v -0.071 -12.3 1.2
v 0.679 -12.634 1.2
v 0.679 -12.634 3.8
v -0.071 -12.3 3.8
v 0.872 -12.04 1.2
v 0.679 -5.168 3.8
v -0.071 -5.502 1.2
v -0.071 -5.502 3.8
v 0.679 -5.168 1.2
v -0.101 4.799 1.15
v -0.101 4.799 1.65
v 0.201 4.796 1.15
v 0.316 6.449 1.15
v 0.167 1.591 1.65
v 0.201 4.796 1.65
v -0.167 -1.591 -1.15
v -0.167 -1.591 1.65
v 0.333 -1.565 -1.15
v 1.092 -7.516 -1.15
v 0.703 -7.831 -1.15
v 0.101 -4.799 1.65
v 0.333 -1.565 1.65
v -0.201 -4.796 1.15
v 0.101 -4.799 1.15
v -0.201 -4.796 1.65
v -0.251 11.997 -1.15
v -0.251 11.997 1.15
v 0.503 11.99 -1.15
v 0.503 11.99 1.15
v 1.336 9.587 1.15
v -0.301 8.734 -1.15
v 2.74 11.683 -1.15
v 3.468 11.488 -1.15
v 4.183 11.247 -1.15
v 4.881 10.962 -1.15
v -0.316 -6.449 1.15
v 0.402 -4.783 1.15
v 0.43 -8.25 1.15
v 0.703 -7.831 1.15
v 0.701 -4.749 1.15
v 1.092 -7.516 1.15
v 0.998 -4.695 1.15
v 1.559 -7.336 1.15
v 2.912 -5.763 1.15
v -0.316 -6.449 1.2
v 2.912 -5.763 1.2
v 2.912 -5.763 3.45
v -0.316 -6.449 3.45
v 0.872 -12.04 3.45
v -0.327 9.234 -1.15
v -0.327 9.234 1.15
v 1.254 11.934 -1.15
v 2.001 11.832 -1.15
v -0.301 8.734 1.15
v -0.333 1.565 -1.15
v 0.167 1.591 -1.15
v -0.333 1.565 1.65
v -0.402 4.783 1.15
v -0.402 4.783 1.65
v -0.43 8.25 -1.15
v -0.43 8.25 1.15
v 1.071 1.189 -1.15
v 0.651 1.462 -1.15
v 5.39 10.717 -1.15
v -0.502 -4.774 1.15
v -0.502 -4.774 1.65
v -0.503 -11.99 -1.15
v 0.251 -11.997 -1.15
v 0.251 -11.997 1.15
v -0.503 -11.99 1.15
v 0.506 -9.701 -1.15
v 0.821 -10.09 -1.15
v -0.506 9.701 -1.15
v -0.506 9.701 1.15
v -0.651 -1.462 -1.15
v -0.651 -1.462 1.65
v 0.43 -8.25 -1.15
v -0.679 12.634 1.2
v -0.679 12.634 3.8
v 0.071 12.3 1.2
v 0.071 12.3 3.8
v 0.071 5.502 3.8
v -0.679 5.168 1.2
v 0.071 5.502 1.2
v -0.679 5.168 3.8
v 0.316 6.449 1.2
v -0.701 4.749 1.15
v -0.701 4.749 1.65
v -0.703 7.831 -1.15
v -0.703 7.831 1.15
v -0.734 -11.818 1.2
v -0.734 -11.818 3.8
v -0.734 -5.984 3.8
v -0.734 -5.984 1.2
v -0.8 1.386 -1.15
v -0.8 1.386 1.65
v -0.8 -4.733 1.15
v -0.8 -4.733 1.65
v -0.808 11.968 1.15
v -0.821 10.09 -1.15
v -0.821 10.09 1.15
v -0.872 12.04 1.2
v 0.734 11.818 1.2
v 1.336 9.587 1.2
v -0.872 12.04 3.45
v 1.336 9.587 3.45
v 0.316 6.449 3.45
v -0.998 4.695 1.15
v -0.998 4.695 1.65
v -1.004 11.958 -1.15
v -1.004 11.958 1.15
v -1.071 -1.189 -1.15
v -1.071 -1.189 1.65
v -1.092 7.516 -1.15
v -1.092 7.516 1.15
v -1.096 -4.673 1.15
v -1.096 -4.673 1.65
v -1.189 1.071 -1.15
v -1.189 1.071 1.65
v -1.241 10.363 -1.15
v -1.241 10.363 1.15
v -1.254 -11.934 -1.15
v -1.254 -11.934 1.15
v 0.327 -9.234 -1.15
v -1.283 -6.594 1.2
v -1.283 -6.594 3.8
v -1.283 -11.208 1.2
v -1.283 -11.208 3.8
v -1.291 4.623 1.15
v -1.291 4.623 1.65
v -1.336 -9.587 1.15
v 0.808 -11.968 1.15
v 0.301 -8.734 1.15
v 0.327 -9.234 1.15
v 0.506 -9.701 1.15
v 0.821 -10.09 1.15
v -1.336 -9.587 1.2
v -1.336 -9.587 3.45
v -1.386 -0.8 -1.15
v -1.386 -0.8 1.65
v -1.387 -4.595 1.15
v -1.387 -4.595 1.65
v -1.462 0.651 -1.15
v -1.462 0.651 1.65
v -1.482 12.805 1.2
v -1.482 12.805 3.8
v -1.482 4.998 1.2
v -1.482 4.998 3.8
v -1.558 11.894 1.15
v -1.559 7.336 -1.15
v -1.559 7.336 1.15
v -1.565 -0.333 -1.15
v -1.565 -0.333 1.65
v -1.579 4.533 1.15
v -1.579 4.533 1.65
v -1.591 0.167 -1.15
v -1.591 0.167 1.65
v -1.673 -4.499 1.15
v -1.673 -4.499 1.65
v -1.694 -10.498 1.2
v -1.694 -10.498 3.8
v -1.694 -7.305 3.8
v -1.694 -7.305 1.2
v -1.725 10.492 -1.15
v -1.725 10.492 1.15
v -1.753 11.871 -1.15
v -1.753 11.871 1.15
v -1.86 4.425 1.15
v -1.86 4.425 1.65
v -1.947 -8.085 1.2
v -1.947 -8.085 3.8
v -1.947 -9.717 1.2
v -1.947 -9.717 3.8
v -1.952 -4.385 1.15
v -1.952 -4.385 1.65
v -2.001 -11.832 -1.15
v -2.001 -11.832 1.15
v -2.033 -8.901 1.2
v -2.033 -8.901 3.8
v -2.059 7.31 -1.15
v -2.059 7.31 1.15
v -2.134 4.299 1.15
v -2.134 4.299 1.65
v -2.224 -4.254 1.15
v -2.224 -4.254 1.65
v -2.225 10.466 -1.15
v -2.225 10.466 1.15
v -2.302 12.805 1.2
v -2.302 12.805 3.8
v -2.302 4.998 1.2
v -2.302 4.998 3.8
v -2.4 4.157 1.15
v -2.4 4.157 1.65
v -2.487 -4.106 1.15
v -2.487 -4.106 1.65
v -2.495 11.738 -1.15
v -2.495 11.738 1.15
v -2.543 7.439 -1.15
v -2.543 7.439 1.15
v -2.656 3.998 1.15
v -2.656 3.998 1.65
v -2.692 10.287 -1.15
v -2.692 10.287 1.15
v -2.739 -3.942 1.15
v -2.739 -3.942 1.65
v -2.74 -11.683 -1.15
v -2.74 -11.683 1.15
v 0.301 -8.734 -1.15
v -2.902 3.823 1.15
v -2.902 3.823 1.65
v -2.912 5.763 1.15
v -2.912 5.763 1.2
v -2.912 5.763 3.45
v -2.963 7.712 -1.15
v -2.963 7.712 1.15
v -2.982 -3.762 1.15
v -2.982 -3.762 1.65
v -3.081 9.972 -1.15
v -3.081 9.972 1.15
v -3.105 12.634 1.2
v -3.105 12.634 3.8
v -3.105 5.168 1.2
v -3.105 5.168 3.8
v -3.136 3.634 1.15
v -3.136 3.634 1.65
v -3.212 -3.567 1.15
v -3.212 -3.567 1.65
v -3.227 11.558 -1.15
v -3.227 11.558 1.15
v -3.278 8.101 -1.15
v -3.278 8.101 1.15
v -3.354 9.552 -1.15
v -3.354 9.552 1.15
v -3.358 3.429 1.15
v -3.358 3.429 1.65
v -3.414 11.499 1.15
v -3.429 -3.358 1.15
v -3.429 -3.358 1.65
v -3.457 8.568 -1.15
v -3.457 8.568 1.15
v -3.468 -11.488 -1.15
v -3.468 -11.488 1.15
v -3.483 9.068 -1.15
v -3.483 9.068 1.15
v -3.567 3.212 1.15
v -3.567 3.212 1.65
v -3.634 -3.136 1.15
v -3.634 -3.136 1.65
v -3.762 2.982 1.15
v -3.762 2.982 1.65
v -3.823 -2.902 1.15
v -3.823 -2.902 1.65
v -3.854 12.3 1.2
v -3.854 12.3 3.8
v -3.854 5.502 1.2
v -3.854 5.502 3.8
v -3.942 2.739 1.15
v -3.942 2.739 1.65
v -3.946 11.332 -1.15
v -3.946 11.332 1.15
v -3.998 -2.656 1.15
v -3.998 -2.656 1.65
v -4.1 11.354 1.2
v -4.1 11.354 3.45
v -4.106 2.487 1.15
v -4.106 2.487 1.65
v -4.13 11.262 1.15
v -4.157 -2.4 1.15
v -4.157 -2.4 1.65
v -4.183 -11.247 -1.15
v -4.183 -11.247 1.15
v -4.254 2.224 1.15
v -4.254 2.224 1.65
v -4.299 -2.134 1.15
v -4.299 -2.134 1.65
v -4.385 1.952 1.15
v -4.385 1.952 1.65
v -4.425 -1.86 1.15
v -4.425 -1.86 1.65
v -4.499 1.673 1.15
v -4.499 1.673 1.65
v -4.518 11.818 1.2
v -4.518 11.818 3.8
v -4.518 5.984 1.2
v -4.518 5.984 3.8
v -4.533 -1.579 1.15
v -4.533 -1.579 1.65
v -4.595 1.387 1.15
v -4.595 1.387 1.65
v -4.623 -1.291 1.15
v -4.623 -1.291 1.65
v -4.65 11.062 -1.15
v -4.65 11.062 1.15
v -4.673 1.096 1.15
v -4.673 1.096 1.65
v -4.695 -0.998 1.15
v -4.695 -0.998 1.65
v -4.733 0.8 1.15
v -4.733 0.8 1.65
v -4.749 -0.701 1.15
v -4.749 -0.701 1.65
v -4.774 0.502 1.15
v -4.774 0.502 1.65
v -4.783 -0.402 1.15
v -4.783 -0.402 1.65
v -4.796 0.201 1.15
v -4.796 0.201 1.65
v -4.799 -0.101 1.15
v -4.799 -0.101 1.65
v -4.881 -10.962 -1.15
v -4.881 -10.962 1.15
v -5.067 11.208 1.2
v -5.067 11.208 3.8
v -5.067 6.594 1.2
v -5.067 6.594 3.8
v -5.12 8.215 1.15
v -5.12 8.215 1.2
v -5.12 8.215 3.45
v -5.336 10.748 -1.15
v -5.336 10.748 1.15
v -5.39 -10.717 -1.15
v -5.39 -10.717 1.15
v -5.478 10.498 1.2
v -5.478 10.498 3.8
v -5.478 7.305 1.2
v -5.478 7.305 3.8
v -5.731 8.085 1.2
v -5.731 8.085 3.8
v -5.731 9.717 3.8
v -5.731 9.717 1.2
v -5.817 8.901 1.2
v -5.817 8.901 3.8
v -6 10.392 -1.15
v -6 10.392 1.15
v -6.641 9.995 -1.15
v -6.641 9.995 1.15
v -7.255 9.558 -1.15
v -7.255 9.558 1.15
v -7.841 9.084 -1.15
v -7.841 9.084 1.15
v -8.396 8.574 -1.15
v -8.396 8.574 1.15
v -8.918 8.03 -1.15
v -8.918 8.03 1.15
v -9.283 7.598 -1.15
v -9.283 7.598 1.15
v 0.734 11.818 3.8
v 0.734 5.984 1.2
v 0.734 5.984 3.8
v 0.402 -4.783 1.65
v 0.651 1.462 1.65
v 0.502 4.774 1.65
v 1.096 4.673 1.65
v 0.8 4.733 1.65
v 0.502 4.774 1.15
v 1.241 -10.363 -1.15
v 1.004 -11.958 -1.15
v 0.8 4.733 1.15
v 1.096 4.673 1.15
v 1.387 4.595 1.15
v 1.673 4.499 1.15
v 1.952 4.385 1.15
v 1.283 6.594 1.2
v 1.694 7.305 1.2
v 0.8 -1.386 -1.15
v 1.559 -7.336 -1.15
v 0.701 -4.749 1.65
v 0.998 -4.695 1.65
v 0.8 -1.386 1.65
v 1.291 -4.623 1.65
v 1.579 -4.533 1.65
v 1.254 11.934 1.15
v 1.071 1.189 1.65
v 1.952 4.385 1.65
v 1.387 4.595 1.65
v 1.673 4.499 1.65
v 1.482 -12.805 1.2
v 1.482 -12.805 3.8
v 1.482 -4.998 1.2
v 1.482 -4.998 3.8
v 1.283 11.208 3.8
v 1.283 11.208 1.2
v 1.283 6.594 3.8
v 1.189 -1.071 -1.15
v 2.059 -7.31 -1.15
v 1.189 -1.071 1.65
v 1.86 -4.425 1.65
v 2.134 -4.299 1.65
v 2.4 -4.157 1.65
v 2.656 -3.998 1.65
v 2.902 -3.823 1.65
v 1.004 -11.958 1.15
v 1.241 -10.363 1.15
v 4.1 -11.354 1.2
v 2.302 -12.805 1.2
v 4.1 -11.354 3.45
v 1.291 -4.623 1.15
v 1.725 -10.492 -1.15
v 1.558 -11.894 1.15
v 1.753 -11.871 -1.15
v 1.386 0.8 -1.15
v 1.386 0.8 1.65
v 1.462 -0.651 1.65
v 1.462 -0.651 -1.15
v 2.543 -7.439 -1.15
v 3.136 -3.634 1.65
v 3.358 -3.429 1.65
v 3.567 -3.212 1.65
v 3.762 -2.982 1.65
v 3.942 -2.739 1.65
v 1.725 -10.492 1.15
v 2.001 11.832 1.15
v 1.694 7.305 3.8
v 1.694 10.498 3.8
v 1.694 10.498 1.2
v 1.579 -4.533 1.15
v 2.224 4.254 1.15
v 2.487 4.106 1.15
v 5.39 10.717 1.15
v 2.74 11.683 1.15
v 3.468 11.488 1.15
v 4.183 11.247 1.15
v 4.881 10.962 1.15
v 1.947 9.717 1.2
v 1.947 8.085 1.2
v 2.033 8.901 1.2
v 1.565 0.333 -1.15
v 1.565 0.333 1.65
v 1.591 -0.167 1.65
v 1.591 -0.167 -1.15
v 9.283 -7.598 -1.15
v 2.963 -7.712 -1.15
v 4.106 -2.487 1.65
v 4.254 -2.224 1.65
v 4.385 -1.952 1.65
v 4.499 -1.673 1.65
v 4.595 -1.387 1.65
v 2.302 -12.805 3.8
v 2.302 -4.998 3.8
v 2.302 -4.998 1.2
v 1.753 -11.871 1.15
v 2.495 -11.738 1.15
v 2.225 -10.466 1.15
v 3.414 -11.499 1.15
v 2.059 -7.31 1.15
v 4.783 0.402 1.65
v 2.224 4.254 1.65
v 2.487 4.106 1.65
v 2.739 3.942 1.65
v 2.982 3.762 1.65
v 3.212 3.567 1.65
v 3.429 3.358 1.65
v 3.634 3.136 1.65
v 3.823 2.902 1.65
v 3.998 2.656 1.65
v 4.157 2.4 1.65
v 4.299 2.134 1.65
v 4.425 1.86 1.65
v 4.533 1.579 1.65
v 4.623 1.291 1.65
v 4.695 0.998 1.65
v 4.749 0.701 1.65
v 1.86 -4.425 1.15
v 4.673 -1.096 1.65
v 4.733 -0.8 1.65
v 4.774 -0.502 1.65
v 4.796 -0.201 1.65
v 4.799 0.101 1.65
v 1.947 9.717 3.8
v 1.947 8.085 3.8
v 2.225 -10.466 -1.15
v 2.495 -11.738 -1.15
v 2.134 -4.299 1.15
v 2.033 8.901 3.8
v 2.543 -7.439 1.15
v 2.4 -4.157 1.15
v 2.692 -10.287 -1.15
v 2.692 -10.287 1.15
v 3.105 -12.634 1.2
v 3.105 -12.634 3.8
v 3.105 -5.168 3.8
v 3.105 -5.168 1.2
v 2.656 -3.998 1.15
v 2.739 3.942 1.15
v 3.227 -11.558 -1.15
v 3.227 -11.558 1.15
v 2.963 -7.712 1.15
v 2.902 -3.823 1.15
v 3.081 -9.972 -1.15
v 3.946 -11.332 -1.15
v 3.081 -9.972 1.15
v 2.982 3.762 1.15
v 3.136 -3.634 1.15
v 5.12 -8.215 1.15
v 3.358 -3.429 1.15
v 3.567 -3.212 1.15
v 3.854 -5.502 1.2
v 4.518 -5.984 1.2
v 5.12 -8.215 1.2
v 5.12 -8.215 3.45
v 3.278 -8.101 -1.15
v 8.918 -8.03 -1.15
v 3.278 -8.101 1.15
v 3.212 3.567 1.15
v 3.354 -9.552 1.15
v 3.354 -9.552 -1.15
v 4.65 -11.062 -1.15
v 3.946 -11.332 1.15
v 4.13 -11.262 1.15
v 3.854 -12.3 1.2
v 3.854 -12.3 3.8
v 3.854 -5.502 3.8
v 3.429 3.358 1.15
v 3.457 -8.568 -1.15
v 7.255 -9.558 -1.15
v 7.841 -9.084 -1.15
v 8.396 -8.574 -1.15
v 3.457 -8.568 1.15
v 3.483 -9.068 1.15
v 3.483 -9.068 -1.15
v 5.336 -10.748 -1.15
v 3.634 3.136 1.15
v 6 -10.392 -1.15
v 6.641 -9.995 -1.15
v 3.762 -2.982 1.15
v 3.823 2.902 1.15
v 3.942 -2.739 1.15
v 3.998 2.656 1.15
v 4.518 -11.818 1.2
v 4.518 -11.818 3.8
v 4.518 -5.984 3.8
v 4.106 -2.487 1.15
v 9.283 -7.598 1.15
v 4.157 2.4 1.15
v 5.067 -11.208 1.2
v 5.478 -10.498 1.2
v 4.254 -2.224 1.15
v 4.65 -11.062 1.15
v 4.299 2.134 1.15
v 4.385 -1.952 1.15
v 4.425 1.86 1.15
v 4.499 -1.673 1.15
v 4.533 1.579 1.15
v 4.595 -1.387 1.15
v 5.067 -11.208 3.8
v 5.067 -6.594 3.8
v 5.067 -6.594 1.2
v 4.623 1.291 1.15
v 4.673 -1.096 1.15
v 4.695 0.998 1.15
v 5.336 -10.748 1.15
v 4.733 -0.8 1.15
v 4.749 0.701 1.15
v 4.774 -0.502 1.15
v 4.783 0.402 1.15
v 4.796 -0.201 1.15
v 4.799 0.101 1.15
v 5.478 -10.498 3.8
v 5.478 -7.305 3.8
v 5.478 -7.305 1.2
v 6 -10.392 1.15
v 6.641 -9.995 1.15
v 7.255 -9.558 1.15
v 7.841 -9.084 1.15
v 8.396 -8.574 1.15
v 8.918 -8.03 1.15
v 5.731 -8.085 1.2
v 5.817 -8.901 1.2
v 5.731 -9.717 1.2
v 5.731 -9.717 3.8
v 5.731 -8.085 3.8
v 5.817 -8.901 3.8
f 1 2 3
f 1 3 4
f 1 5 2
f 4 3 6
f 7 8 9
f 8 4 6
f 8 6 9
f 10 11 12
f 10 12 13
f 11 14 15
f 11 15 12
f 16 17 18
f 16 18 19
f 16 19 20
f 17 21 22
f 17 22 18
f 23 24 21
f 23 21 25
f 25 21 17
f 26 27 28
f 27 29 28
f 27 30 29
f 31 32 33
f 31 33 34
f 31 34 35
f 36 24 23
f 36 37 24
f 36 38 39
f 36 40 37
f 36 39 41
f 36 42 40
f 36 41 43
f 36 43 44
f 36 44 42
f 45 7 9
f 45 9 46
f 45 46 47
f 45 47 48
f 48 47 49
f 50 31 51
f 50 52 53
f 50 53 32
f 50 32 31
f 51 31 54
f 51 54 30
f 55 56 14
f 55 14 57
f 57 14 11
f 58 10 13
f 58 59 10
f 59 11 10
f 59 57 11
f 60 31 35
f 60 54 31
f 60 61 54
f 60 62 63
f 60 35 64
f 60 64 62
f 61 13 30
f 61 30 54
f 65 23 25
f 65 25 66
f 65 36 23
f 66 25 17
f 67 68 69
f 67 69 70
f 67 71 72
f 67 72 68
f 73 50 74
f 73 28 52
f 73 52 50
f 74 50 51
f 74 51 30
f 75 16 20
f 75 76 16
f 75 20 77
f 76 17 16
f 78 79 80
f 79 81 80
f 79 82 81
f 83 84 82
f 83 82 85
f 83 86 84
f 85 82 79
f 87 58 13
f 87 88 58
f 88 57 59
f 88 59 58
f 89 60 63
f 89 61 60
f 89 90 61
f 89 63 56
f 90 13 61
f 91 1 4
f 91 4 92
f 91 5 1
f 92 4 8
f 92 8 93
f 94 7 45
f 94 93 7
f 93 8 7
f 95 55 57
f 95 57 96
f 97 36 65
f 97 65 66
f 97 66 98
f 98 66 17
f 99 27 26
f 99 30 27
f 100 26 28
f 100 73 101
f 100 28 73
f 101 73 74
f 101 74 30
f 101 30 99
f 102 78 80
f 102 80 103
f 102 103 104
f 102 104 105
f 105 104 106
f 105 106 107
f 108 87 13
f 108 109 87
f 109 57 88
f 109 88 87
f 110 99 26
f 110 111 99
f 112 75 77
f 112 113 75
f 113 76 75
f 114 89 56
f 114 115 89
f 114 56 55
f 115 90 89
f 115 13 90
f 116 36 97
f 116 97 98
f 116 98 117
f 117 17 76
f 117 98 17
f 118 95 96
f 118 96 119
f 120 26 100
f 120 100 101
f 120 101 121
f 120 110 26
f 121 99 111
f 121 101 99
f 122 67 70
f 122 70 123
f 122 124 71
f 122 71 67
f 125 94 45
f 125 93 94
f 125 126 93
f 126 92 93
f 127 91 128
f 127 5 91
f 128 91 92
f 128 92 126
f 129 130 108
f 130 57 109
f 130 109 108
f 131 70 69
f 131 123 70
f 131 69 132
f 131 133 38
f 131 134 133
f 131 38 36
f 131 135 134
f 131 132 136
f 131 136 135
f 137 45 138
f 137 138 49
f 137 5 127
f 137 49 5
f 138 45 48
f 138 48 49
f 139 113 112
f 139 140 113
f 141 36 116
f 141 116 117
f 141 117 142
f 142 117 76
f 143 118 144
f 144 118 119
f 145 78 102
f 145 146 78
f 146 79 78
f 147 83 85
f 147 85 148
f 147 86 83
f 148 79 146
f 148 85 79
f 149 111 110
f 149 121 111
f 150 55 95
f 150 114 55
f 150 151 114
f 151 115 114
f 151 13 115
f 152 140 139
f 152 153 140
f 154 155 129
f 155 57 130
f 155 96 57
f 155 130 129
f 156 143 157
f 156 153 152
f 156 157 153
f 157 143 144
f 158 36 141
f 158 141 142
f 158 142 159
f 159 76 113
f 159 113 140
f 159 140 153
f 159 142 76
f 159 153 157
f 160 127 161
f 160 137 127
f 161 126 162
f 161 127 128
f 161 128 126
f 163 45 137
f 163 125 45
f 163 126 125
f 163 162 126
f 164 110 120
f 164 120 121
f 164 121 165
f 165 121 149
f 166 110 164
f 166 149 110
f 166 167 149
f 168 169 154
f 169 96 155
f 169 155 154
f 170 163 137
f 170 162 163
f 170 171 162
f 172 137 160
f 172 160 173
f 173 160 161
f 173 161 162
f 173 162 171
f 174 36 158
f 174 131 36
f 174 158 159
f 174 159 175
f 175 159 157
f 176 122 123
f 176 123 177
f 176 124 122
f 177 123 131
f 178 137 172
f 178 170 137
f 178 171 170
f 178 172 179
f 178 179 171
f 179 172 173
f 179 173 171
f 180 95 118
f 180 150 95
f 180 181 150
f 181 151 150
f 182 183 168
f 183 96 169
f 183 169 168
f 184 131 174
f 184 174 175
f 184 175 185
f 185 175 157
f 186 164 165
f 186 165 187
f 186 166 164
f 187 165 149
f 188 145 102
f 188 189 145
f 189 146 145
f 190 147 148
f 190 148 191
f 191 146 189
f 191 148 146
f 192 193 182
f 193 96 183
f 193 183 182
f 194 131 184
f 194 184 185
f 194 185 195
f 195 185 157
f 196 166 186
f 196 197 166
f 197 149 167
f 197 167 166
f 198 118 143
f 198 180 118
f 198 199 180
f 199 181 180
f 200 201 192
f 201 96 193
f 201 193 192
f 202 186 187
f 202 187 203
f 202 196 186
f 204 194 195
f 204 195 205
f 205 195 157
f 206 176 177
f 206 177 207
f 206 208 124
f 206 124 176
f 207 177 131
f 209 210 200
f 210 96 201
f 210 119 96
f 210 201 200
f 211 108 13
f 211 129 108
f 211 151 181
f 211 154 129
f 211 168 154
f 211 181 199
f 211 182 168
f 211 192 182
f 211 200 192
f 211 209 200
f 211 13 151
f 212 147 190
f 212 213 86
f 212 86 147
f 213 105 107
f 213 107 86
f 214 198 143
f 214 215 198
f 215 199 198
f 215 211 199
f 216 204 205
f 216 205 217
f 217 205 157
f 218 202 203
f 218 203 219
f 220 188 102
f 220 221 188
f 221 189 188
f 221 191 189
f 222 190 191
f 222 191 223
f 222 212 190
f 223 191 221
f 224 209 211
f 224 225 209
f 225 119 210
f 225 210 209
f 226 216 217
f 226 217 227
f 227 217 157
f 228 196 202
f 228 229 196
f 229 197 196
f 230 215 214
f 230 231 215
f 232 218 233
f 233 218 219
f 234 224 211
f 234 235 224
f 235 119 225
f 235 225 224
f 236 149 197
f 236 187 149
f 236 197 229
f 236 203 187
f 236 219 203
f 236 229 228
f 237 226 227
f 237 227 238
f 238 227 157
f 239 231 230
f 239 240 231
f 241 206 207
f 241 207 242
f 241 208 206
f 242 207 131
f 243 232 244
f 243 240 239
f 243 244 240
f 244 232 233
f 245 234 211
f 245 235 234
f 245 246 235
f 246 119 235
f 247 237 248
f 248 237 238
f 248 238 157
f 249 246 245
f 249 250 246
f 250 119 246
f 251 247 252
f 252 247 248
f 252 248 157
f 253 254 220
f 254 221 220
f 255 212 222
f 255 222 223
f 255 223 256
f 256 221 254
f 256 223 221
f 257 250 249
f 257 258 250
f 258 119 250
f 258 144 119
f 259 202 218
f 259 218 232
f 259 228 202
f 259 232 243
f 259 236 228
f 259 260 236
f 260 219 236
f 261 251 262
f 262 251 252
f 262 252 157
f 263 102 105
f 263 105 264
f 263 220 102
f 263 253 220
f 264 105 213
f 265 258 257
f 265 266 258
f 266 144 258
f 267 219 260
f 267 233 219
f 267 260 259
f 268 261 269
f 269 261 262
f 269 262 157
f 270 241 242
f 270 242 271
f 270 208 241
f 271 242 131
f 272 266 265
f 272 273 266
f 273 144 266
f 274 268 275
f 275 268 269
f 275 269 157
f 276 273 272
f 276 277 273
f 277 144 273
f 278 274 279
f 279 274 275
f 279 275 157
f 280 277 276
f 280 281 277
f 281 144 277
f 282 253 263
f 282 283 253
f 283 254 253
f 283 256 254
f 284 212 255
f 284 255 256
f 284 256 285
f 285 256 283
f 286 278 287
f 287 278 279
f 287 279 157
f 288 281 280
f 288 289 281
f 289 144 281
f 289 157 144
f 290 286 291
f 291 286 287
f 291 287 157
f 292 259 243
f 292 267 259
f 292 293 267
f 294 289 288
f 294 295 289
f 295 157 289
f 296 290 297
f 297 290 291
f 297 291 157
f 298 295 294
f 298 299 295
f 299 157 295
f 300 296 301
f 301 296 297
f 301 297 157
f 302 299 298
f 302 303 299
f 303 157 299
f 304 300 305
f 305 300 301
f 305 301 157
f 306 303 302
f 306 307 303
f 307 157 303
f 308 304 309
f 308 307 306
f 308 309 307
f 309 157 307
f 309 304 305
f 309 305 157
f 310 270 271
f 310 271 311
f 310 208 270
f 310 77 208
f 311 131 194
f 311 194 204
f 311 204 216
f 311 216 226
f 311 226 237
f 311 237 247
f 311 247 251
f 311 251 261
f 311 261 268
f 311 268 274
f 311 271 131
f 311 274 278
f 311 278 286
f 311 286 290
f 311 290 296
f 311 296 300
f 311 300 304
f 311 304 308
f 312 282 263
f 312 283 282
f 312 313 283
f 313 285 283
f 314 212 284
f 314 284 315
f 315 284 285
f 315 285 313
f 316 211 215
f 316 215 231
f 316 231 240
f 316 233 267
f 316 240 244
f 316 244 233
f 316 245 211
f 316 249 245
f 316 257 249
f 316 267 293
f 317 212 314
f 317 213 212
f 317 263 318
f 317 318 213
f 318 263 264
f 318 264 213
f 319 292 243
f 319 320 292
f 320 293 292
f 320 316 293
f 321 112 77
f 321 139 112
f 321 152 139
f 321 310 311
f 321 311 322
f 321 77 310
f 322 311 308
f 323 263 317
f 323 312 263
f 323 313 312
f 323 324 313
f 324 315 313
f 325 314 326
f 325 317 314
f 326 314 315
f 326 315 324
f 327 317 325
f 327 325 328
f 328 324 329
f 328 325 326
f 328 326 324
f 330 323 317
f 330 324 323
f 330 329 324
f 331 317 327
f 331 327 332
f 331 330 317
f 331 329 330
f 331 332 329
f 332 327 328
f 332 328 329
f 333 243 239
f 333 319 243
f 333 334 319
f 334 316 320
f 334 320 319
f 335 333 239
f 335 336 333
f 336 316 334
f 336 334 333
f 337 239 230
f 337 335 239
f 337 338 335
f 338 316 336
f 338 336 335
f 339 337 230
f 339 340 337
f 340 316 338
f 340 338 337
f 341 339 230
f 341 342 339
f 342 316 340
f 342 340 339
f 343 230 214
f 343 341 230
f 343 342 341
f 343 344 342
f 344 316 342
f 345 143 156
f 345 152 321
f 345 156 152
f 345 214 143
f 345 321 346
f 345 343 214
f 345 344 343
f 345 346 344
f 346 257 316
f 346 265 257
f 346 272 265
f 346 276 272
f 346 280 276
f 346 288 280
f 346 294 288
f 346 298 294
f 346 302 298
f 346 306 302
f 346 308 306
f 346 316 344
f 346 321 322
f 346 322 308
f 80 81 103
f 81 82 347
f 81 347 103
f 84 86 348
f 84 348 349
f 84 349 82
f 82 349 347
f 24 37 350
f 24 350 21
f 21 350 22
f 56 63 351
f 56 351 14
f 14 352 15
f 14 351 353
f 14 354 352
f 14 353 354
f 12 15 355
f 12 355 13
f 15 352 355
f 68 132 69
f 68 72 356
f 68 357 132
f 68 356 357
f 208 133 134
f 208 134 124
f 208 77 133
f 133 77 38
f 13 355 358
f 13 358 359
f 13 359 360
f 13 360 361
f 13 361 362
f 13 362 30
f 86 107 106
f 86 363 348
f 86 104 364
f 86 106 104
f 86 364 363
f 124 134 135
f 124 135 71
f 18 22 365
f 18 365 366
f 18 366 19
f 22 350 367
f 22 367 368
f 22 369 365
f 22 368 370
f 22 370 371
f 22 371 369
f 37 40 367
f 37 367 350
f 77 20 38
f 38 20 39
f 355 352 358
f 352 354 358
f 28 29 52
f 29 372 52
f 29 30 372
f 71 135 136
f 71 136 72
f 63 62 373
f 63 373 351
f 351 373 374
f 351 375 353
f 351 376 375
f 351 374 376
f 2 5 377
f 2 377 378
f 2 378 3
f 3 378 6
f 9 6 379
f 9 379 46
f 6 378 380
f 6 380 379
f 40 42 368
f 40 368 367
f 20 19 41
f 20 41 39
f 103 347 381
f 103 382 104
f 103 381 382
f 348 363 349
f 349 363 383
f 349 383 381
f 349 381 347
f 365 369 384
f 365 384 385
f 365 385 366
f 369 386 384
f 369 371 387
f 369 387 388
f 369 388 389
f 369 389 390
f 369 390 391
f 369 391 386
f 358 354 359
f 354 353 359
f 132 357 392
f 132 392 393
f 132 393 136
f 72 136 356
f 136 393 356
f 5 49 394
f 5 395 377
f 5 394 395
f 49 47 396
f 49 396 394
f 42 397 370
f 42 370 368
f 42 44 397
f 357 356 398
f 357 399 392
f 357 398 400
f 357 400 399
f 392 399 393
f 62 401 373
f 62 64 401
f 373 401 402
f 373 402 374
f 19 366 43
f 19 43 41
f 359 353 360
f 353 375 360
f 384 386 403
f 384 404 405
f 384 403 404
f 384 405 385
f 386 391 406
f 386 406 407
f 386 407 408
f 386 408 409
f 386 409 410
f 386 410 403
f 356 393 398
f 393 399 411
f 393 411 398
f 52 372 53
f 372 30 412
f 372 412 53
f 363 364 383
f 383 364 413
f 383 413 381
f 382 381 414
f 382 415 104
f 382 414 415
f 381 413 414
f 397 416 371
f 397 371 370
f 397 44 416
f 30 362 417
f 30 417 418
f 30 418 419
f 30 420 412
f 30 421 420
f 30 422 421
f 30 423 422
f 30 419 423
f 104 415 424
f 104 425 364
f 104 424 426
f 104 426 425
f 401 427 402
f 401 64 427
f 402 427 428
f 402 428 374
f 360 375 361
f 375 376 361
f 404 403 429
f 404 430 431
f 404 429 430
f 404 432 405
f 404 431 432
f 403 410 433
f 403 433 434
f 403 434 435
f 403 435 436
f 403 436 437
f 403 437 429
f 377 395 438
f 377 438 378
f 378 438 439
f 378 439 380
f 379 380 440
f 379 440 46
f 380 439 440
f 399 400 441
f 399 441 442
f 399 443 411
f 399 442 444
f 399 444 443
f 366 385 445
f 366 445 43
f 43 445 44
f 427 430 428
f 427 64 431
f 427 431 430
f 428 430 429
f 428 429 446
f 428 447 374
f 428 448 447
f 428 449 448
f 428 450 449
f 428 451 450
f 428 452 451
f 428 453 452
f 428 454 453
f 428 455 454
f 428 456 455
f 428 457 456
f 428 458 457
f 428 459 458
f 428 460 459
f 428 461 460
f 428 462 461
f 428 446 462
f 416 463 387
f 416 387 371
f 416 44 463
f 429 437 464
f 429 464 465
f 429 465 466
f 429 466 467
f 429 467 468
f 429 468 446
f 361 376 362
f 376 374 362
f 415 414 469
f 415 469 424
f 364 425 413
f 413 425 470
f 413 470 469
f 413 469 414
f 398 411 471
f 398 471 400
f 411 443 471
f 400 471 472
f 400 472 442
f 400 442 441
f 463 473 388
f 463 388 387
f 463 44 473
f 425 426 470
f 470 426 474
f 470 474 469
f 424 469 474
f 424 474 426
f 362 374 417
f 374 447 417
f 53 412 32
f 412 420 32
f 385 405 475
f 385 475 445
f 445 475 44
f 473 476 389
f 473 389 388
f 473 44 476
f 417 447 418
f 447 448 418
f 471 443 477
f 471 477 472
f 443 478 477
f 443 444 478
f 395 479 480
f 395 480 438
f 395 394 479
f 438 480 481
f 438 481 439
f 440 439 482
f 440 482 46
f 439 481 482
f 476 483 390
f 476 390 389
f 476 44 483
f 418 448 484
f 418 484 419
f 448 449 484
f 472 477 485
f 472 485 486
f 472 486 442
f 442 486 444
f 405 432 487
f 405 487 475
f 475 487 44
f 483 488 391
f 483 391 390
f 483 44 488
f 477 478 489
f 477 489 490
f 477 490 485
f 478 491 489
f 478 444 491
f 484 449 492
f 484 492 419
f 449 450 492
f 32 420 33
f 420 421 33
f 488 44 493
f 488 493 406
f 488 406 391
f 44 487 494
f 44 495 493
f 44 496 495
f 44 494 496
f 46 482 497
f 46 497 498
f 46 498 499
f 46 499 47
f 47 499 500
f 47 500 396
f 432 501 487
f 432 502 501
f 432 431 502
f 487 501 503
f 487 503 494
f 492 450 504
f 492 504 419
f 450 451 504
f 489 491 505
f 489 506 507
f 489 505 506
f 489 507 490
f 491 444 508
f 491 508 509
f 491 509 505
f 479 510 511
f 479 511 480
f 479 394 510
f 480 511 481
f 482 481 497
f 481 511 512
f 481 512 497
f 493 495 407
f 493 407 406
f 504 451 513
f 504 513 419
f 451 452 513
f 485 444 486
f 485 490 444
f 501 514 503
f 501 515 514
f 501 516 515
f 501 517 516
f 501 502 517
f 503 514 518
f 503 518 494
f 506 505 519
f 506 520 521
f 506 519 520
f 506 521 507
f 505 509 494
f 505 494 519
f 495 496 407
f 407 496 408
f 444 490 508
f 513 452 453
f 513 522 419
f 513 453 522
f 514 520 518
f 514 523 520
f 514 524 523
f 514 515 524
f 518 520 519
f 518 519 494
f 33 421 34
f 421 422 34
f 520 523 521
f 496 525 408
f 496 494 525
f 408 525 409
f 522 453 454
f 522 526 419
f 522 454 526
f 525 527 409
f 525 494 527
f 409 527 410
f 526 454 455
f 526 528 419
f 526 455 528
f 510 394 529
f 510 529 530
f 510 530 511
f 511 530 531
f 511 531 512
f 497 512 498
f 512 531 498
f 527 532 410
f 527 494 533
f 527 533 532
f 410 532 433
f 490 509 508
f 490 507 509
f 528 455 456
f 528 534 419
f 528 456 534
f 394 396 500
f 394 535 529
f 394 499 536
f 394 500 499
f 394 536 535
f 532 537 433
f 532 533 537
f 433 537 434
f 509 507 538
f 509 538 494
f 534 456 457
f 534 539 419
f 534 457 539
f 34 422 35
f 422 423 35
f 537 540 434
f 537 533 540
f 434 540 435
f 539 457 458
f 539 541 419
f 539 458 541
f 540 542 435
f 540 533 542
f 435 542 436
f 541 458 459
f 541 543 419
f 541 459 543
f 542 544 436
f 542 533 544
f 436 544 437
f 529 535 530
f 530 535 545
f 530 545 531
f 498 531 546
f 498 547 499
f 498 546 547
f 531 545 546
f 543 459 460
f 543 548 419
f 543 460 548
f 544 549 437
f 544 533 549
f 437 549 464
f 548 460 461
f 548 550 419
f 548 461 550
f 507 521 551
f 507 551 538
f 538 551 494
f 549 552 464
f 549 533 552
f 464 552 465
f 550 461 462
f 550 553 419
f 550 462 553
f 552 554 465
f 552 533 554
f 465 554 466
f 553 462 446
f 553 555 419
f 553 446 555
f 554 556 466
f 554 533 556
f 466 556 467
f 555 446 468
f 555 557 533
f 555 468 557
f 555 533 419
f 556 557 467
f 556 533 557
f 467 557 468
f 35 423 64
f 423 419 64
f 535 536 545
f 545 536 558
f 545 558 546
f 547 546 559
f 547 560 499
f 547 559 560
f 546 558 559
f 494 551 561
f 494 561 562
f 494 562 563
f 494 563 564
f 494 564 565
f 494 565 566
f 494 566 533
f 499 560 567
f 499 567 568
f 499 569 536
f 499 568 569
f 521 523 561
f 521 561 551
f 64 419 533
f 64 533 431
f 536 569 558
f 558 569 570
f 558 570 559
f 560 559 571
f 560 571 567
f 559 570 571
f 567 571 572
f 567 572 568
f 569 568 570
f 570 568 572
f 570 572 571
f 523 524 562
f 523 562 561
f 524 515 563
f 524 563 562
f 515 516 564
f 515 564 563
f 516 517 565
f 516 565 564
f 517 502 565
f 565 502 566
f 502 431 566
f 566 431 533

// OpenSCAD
// file: ../parameters.scad
global_clearance = 0.5;

layer_thickness = 0.3;

//Main tube diameter - hole [mm]
main_tube_outer_diameter = 25.4;
main_tube_inner_diameter = 23.05;

// Nastavení parametrů rotoru

gliding_aggle = 14;         // tenhle úhel by se zřejmě v budoucnu měl počítat z požadované klouzavosti.

rotor_blade_AOA = 1.5;      // nastavení úhlu náběhu rotorového listu

// Rotor Auto-G2
rotor_blade_rod = true;  // generovat diru pro uhlikove tycky
rotor_blade_length = 400 - 15;   // délka rotorového listu
rotor_blade_depth = 45.5;     // hloubka rotorového listu
blade_mount_length = 30;

blade_mount_width = 17;
blade_mount_thickness = 4;
blade_mount_screw_offset = 5; // distance of first screw from rotor end

// Testovaci maly rotor

        /*
        rotor_blade_rod = false;
        rotor_blade_length = 145;   // délka rotorového listu
        rotor_blade_depth = 45.5 * (145/385);     // hloubka rotorového listu
        blade_mount_length = 20;
        blade_mount_width = 10;
        blade_mount_thickness = 4;
        */

// konec parametru pro testovaci maly rotor

rotor_height = 180;         // výška otočného kloubu rotoru nad hlavní trubkou vírníku (odhad)
rotor_blades_count = 2;
rotor_delta_angle = 12;
rotor_blade_thickness = 5.1;

rotor_blade_naca = 2412;
rotor_blade_parts_count = 3;

blade_transition_length = 10; // length of blade transition

blade_mount_screw_distance = (16.47+11.86)/2;

blade_shell_thickness = 0.79;
blade_shell_thickness_inner = 0.41;
blade_shell_thickness_wire = 0.5;
blade_infill_distance = 25;
blade_infill_overlap = 2;

//blade_rod_position = [rotor_blade_depth/4 + 5, 0, 0];
//blade_rod_position2 = [rotor_blade_depth/4 - 5, 0, 0];

//blade_rod_position = [15, 0, 0];
//blade_rod_position2 = [4, 0.3, 0];

blade_rod1_diameter = 2.58;
blade_rod2_diameter = 2.58;
blade_rod3_diameter = 2.08;

blade_rod1_position = [3.15, 0.27, 0];
blade_rod2_position = [rotor_blade_depth/4 - 4.7, 0, 0];
blade_rod3_position = [rotor_blade_depth/4 + 3.5, 0, 0];


rotor_head_width =  21.4;    //Rozměr 1 v nákresu
pilon_wall_thickness = 4.2;  // Rozměr 2 v nákresu
horizontal_screw_distance = 14.5;   // Rozměr 4 v nákresu
vertical_screw_distance = 12;       // rozměr 5 v nkresu
topscrew_distance_endofpilon = 5;

rotorhead_wall_thickness = 2; // sila tistenych dilu


bearing_outer_diameter = 10.2;    // Rozměr B1 v nákresu s přídavkem na toleranci otvoru
bearing_thickness = 4;        // Rozměr B2 v nákresu
//bearing_shaft_length = 19.5;    // Rozměr B3 v nákresu, Originalni hodnota 19.5
bearing_shaft_length = 20;    // Rozměr B3 v nákresu


// nastavení parametrů motoru

engine_angle = -8;
engine_diameter = 55;
engine_offset = 55;

engine_screws_radius = 15;
engine_holes_radius = (24 + 44)/4;
engine_shatf_hole_diameter = 13;

// screw length step - minimum difference in length between two types of screws
basic_screw_length = 5;

//Screw diameter and nut for M6 [mm]
M6_screw_diameter=6.5;
M6_head_diameter = 10+0.5;
M6_head_height = 6;
M6_nut_height = 4.9;
M6_nut_diameter = 11.8;
M6_nut_pocket = 10.4;

//Screw diameter and nut for M5 [mm]
M5_screw_diameter=5.5;
M5_head_height = 5;
M5_head_diameter = 13+0.5;
M5_nut_height = 4.5;
M5_nut_diameter = 9.4;
M5_nut_pocket = 8.4;

//Screw diameter and nut for M4 [mm]
M4_screw_diameter=4.5;
M4_screw_head_height = 4;
M4_nut_height = 3.2;
M4_nut_diameter = 8.4;
M4_nut_pocket = 7.5;

//Screw diameter and nut for M3 [mm]
M3_screw_diameter = 3.2;
M3_nut_height = 2.7;
M3_nut_diameter = 6.6;
M3_screw_head_height = 3;
M3_nut_pocket = 5.6;


//Screw diameter and nut for M2,5 [mm]
M2_5_screw_diameter = 2.7;
M2_5_nut_height = 2.3;
M2_5_nut_diameter = 6;
M2_5_nut_pocket = 5.1;

//Screw diameter and nut for M2 [mm]
M2_screw_diameter = 2.0;
M2_nut_height = 1.8;
M2_nut_diameter = 4.8;
M2_nut_pocket = 3.95;


blade_mount_screw = M3_screw_diameter;


//šroub servo
Servo_screw = 1.5;
Servo_nut_height = 1;
Servo_nut_diameter = 2.7;



//center_of_gravity_position = [main_pilon_position - tan(gliding_aggle)*rotor_height, 0, 0];


////podzvozek

radius_undercarriage = 25;
vzdalenost_x = tan(20) * 131;
vzdalenost_y = (131 - radius_undercarriage)/tan(79);
uhel_y = 90 - 20;
uhel_x = 90 - 79;

maximum_printable_size = 150;


////Pitotova trubice
Pitot_tube_diameter = 4.02 + 1;
Distance_hole_from_tube = 11.92;  //vzdálenost otvoru pro připevnění od samotné trubičky


////Vlečné zařízení
tow_ring_diameter = 20;
tow_ring_thickness = 5;
tow_ring_groove = 2;
tow_ring_hole_diameter = M3_screw_diameter;
// main file
include <../parameters.scad>

module 111_1008(){

    angle_between_blades = 360 / rotor_blades_count;
    rotor_center_plate_size = 30;
    rotor_mounting_plate_size = 20;
    shaft_diameter = 6.1;
    thickness = 2.3;
    blade_screws_distance = (16.47+11.86)/2;

    edge_distance = 15;
    spacer_disc_diameter = 3 * M3_screw_diameter;
    spare_disc_height = 0.6;

    rotate([0,0, rotor_delta_angle]) {
        difference() {
            union(){
                cylinder(r = 3+9, h = thickness, center = true, $fn = 100);
                translate([0,0,-thickness/2])
                    cylinder(d = spacer_disc_diameter, h = thickness + 0.5, $fn = 100);

                for (i = [1:rotor_blades_count]) {
                    if (rotor_blades_count/2 == round(rotor_blades_count/2))  // check if there is even or odd blade number
                    {
                        rotate([0,0, i*angle_between_blades])
                            translate([0, 3 + 4.5 + M3_screw_diameter/2, thickness/2+M3_nut_height/2]) {
                                cylinder(d = M3_nut_diameter+1.25, h = M3_nut_height-0.1, center = true, $fn = 30);
                            }
                    }
                    else
                    {
                        rotate([0,0, i*angle_between_blades - angle_between_blades/2 ])
                            translate([0, 3 + 4.5 + M3_screw_diameter/2, thickness/2+M3_nut_height/2])
                                cylinder(d = M3_nut_diameter+1.25, h = M3_nut_height, center = true, $fn = 30);
                    }
                }
            }

            cylinder(d = M3_screw_diameter, h = 3* thickness, center = true, $fn = 20);

            for (i = [1:rotor_blades_count]){
                rotate([0, 0, i*angle_between_blades + angle_between_blades/2 + 180])
                    translate([0, edge_distance, 0])
                        cube([30, 15, 10], center = true);

                if (rotor_blades_count/2 == round(rotor_blades_count/2))  // check if there is even or odd blade number
                {
                    rotate([0,0, i*angle_between_blades])
                        translate([0, 3 + 4.5 + M3_screw_diameter/2, 0]) {
                            cylinder(d = M3_screw_diameter, h = 2* thickness, center = true, $fn = 20);
                            translate([0, 0, thickness]) cylinder(d = M3_nut_diameter, h =  thickness, center = true, $fn = 6);
                        }
                }
                else
                {
                    rotate([0,0, i*angle_between_blades - angle_between_blades/2 ])
                        translate([0, 3 + 4.5 + M3_screw_diameter/2, 0]) {
                            cylinder(d = M3_screw_diameter, h = 2* thickness, center = true, $fn = 20);
                            translate([0, 0, thickness]) cylinder(d = M3_nut_diameter, h =  thickness, center = true, $fn = 6);
                        }
                }
            }
        }
    }
}

111_1008();
